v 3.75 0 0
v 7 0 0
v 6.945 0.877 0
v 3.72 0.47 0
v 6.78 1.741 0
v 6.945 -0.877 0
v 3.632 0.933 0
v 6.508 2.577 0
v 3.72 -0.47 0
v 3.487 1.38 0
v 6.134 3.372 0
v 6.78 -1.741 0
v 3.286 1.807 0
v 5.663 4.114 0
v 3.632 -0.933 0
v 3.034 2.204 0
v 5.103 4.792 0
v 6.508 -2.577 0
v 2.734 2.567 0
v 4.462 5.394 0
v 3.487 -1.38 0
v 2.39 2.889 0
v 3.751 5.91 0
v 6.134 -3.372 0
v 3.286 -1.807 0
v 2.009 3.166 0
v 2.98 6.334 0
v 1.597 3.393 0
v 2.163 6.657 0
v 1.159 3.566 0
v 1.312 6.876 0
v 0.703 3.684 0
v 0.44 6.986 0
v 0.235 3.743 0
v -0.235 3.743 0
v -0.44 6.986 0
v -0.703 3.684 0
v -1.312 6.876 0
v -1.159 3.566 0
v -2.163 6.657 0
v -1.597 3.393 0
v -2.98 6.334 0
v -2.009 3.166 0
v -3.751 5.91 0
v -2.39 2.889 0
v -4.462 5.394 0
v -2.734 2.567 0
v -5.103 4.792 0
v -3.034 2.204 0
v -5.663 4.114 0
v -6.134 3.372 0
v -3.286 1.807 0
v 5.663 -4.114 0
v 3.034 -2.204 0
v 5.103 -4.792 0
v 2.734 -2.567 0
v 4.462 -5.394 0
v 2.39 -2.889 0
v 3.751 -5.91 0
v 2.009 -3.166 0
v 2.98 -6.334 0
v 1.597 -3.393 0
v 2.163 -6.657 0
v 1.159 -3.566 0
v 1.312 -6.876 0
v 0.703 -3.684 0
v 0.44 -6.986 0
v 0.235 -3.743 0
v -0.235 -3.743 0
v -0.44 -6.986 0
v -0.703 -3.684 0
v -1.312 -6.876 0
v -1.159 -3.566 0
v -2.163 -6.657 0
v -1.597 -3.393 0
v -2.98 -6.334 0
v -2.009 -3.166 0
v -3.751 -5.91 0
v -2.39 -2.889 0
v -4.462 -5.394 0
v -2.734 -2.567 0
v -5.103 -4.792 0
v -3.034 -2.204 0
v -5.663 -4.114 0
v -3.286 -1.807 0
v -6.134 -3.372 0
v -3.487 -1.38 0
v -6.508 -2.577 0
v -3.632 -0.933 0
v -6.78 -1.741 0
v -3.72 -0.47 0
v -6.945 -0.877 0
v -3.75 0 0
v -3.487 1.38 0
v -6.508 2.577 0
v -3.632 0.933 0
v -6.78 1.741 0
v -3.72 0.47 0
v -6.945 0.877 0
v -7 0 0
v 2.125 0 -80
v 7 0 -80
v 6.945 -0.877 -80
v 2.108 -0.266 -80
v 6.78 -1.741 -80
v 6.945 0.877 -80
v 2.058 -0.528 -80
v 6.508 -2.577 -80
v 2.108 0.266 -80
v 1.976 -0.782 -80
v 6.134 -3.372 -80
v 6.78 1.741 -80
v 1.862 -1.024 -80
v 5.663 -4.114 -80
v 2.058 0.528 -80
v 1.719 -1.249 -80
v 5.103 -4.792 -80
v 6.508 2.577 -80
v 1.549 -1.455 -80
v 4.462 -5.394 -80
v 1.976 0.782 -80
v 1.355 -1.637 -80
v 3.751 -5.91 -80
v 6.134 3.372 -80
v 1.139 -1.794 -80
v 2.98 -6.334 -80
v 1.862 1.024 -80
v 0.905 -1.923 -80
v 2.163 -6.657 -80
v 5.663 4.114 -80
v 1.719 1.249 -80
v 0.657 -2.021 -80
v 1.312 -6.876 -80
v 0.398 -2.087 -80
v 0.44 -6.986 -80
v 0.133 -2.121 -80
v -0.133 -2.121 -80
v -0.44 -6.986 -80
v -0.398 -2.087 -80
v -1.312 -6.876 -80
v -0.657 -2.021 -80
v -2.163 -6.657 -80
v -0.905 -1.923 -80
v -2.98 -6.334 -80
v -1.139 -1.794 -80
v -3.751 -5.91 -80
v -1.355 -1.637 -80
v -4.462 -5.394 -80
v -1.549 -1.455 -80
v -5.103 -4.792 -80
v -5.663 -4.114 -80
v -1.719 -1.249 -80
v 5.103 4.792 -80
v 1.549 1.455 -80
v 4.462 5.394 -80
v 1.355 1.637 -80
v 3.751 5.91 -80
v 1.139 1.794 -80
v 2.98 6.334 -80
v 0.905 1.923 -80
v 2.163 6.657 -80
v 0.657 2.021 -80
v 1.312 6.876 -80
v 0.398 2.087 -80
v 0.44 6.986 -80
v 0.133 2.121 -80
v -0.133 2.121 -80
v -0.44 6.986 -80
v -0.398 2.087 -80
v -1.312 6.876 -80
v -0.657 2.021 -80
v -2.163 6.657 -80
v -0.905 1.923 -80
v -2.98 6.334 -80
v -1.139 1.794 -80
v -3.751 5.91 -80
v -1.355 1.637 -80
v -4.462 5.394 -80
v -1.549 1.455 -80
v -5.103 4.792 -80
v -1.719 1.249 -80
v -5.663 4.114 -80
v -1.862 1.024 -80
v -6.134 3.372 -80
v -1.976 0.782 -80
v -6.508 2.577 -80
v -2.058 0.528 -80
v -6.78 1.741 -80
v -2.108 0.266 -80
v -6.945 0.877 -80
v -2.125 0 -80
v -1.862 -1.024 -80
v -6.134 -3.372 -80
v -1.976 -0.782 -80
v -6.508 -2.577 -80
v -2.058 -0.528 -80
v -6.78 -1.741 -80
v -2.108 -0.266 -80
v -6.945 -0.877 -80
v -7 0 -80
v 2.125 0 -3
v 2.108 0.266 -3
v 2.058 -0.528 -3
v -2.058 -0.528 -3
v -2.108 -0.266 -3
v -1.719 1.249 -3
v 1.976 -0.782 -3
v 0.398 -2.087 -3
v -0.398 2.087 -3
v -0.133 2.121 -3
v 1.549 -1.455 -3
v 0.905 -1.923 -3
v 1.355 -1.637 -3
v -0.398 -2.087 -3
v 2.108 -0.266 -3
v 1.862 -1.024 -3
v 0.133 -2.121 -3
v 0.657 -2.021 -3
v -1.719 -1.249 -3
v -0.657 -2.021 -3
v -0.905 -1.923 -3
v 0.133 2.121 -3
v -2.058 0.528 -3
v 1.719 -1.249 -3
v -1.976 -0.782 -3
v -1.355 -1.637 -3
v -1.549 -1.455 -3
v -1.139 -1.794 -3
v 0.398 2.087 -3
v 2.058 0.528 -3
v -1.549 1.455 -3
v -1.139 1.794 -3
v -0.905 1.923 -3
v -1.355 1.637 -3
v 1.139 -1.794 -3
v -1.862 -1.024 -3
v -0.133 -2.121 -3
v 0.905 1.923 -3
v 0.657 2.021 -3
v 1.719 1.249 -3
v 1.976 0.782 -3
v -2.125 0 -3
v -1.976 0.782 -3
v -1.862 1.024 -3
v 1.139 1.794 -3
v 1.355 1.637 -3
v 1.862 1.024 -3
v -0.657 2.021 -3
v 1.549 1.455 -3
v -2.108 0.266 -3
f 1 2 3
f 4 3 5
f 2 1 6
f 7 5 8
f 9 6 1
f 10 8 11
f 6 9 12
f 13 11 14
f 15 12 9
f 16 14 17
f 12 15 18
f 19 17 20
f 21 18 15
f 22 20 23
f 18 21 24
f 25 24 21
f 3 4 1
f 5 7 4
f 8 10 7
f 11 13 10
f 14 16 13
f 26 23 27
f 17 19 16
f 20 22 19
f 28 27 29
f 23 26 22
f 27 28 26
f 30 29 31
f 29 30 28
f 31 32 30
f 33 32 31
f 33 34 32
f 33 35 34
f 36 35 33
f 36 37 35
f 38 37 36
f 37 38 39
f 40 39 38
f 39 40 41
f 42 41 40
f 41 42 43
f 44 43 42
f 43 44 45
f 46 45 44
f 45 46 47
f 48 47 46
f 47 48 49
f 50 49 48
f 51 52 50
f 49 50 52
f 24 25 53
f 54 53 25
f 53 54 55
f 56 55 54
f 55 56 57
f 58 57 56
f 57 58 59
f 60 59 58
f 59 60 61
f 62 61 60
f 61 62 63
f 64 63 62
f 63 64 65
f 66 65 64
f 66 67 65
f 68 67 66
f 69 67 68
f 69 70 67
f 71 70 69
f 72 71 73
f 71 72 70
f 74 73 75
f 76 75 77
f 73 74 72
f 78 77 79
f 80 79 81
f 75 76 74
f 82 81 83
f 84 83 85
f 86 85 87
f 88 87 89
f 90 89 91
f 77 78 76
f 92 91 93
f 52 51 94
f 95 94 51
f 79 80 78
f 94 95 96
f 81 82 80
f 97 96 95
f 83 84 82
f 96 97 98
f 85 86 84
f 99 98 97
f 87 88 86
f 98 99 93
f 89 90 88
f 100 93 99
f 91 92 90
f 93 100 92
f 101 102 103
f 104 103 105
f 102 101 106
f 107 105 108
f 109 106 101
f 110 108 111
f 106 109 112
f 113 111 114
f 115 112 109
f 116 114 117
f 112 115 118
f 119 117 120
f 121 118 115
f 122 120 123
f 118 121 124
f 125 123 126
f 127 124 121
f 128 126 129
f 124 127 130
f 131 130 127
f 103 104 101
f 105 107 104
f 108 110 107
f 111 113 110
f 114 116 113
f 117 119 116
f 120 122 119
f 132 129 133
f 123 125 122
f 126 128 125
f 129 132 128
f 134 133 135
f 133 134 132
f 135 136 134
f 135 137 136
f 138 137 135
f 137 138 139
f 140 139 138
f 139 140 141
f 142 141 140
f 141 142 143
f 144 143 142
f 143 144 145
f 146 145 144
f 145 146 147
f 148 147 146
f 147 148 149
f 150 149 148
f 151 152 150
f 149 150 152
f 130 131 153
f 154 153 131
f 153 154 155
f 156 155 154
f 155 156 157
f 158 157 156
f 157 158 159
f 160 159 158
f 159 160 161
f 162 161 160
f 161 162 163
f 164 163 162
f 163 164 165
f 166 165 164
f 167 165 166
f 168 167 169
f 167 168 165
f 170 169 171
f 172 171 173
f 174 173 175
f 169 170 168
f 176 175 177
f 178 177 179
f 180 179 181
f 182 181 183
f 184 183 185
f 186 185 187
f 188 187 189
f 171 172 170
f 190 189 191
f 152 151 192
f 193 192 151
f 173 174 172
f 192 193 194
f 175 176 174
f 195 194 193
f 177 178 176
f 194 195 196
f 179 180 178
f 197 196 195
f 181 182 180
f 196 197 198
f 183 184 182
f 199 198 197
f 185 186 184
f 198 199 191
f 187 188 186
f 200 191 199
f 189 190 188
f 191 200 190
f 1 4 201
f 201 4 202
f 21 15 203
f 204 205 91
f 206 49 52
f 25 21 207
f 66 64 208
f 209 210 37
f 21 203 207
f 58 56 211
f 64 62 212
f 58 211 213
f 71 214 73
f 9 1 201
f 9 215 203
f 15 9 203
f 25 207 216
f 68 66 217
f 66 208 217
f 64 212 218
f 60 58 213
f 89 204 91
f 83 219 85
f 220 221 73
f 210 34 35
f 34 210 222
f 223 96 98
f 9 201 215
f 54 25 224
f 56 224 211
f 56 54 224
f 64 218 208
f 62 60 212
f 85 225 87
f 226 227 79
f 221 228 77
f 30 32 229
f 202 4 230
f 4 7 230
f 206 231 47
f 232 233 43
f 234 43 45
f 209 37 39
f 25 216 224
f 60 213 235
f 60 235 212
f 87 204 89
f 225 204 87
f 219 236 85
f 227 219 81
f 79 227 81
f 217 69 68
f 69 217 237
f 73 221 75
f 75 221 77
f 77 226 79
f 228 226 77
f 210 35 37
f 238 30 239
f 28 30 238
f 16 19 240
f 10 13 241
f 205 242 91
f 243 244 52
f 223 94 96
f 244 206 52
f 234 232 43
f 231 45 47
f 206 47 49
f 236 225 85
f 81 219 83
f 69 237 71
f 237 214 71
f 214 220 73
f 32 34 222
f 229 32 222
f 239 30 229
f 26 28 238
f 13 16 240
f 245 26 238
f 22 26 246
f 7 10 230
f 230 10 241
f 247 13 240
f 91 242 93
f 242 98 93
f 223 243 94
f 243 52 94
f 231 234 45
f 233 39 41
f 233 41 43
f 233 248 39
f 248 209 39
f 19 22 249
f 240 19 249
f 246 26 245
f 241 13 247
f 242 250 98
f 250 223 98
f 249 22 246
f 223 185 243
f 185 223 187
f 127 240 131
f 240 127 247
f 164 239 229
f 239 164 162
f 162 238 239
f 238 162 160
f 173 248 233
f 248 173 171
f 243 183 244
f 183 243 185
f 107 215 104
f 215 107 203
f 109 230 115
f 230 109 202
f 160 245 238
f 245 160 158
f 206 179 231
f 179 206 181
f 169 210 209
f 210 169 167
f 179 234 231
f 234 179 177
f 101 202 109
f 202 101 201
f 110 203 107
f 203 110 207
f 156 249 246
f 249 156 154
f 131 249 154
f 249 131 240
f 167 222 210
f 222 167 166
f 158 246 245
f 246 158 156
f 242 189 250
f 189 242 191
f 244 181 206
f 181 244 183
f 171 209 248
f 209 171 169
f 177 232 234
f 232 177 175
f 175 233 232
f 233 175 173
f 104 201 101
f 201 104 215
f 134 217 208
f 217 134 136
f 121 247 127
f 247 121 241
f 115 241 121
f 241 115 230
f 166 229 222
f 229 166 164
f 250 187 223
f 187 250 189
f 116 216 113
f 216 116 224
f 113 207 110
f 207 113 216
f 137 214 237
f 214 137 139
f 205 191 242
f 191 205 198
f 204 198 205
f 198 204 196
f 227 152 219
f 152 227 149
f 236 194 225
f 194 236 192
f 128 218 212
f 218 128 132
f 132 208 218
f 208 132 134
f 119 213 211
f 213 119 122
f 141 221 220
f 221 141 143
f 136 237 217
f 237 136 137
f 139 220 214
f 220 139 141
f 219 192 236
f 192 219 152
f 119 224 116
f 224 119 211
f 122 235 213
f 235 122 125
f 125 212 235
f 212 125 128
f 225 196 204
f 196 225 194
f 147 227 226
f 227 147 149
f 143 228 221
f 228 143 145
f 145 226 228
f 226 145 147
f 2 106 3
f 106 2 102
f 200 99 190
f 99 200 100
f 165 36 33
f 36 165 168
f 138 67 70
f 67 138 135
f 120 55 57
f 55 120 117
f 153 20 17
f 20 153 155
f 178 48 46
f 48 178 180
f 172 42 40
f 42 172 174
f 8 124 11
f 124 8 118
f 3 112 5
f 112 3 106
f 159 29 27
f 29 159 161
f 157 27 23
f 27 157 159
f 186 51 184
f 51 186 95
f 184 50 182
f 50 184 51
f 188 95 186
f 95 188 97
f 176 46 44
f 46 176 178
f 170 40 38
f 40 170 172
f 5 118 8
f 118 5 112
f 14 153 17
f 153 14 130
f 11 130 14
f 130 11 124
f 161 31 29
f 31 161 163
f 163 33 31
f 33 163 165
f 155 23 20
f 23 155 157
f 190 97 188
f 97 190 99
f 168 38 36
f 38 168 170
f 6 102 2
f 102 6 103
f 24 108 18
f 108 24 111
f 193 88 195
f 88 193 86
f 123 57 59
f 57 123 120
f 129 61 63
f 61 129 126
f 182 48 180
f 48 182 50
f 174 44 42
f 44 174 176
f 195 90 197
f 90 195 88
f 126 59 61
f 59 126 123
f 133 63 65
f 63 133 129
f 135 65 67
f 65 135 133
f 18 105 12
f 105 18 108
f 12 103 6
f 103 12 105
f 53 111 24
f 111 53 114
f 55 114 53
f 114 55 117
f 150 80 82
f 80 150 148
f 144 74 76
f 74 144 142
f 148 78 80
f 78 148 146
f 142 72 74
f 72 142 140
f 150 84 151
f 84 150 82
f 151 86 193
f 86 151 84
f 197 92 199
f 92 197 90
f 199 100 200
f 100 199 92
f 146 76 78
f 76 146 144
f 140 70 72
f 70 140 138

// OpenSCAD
$fn = 50;


difference() {
	union() {
		translate(v = [0, 0, -80.0000000000]) {
			cylinder(h = 80, r = 7.0000000000);
		}
		cylinder(h = 0, r = 13.0000000000);
	}
	union() {
		translate(v = [0, 0, 0]) {
			rotate(a = [0, 0, 0]) {
				difference() {
					union() {
						#translate(v = [0, 0, -80.0000000000]) {
							cylinder(h = 80, r = 2.0000000000);
						}
						#translate(v = [0, 0, -3]) {
							cylinder(h = 3, r = 7.0000000000, r1 = 2.1250000000, r2 = 3.7500000000);
						}
						#translate(v = [0, 0, -80.0000000000]) {
							cylinder(h = 80, r = 2.1250000000);
						}
						#translate(v = [0, 0, -80.0000000000]) {
							cylinder(h = 80, r = 2.0000000000);
						}
					}
					union();
				}
			}
		}
	}
}
